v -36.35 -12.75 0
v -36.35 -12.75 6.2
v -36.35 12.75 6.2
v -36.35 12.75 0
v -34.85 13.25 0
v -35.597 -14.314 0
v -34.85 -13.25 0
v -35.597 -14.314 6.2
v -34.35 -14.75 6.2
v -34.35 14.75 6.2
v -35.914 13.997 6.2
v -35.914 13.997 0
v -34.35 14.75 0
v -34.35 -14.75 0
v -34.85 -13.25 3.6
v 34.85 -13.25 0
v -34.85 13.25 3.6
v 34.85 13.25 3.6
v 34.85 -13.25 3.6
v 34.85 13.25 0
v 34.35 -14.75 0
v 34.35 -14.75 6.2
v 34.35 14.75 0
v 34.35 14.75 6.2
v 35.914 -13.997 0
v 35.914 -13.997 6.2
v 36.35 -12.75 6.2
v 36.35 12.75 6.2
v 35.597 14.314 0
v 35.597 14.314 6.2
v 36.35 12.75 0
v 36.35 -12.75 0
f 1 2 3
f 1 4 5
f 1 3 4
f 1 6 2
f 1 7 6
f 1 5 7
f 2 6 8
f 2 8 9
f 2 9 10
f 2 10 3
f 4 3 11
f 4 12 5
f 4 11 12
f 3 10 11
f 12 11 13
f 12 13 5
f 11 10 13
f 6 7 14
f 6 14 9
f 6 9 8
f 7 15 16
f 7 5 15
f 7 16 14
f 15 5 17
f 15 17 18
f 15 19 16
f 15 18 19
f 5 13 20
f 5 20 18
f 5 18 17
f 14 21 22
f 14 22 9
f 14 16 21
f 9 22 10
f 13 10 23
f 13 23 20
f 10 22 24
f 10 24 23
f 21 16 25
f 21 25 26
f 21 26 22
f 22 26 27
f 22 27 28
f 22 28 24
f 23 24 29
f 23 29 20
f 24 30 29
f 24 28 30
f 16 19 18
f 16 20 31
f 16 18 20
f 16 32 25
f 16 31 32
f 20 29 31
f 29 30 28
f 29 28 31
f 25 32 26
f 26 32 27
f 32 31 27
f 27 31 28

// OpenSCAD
// file: params.scad
// Shared parameters for PIU LX Pad TPU spacers
// Include this file in other .scad files with:
//   include <params.scad>

// ============================================================
// L-BRACKET DIMENSIONS
// ============================================================

bracket_length = 69.7; // mm
bracket_width = 26.5; // mm
bracket_thickness = 3.6; // mm (metal + foam)

// ============================================================
// CORNER BRACKET DIMENSIONS
// ============================================================

arm_length_x = 56.2; // mm
arm_length_y = 56.2; // mm
arm_width = 25.4; // mm

// ============================================================
// SCREW HOLE
// ============================================================

screw_hole_diameter = 8.5; // mm
screw_hole_x = 5; // mm — from inner corner of L
screw_hole_y = 5; // mm — from inner corner of L

// ============================================================
// SHARED
// ============================================================

corner_radius = 2; // mm
spacer_thickness = 0.4; // mm — for test spacers

// ============================================================
// SHARED MODULES
// ============================================================

module rounded_rect(l, w, h, r) {
    linear_extrude(height = h)
        offset(r = r)
            square([l - 2*r, w - 2*r], center = true);
}

module l_shape(lx, ly, w) {
    union() {
        square([lx, w]);
        square([w, ly]);
    }
}

module l_shape_rounded(lx, ly, w, r) {
    offset(r = r)
    offset(delta = -r)
        l_shape(lx, ly, w);
}
// main file
// PIU LX Pad — L-Bracket Topper (TPU Tape Mod Replacement)
// Caps onto the L bracket with a pocket that grips the metal.
// The top surface sits between the bracket and the acrylic panel.
//
// Print with TPU filament for foam-like compressibility.
// Print UPSIDE DOWN (top/flat face on the bed) for best surface.
// You need one of these per L bracket (4 per panel, 20 per pad).
//
// Based on 4199's PIU Pad Setup and Maintenance Guide.

include <params.scad>

// ============================================================
// PARAMETERS
// ============================================================

// Cross-section of the cap on the bracket:
//
//    +--+--------------+--+
//    |  | top_thickness |  |  ← top (contacts acrylic panel)
//    +--+--------------+--+
//    |  |bracket pocket|  |
//    |  |(brkt_thick)  |  |
//    |  +--------------+  |
//    +--+              +--+
//    wall              wall

// Top thickness (above the bracket, contacts the acrylic panel)
// This is what raises the panel. Equivalent to the tape stack.
top_thickness = 2.6; // mm

// Wall thickness on each side of the pocket
wall_thickness = 1.5; // mm

// Clearance added to the pocket so it slides on.
// TPU is flexible so this can be small.
pocket_clearance = 0; // mm per side

// ============================================================
// DERIVED
// ============================================================

total_height = top_thickness + bracket_thickness;
wall_and_clearance = wall_thickness + pocket_clearance;
outer_length = bracket_length + 2 * wall_and_clearance;
outer_width = bracket_width + 2 * wall_and_clearance;
pocket_length = bracket_length + 2 * pocket_clearance;
pocket_width = bracket_width + 2 * pocket_clearance;

// ============================================================
// MODEL
// ============================================================

module l_bracket_topper() {
    difference() {
        // Outer shell
        rounded_rect(outer_length, outer_width, total_height, corner_radius);

        // Pocket: carved from the bottom for the metal bracket + foam
        translate([-pocket_length/2, -pocket_width/2, -0.01])
            cube([pocket_length, pocket_width, bracket_thickness + 0.01]);
    }
}

l_bracket_topper();
